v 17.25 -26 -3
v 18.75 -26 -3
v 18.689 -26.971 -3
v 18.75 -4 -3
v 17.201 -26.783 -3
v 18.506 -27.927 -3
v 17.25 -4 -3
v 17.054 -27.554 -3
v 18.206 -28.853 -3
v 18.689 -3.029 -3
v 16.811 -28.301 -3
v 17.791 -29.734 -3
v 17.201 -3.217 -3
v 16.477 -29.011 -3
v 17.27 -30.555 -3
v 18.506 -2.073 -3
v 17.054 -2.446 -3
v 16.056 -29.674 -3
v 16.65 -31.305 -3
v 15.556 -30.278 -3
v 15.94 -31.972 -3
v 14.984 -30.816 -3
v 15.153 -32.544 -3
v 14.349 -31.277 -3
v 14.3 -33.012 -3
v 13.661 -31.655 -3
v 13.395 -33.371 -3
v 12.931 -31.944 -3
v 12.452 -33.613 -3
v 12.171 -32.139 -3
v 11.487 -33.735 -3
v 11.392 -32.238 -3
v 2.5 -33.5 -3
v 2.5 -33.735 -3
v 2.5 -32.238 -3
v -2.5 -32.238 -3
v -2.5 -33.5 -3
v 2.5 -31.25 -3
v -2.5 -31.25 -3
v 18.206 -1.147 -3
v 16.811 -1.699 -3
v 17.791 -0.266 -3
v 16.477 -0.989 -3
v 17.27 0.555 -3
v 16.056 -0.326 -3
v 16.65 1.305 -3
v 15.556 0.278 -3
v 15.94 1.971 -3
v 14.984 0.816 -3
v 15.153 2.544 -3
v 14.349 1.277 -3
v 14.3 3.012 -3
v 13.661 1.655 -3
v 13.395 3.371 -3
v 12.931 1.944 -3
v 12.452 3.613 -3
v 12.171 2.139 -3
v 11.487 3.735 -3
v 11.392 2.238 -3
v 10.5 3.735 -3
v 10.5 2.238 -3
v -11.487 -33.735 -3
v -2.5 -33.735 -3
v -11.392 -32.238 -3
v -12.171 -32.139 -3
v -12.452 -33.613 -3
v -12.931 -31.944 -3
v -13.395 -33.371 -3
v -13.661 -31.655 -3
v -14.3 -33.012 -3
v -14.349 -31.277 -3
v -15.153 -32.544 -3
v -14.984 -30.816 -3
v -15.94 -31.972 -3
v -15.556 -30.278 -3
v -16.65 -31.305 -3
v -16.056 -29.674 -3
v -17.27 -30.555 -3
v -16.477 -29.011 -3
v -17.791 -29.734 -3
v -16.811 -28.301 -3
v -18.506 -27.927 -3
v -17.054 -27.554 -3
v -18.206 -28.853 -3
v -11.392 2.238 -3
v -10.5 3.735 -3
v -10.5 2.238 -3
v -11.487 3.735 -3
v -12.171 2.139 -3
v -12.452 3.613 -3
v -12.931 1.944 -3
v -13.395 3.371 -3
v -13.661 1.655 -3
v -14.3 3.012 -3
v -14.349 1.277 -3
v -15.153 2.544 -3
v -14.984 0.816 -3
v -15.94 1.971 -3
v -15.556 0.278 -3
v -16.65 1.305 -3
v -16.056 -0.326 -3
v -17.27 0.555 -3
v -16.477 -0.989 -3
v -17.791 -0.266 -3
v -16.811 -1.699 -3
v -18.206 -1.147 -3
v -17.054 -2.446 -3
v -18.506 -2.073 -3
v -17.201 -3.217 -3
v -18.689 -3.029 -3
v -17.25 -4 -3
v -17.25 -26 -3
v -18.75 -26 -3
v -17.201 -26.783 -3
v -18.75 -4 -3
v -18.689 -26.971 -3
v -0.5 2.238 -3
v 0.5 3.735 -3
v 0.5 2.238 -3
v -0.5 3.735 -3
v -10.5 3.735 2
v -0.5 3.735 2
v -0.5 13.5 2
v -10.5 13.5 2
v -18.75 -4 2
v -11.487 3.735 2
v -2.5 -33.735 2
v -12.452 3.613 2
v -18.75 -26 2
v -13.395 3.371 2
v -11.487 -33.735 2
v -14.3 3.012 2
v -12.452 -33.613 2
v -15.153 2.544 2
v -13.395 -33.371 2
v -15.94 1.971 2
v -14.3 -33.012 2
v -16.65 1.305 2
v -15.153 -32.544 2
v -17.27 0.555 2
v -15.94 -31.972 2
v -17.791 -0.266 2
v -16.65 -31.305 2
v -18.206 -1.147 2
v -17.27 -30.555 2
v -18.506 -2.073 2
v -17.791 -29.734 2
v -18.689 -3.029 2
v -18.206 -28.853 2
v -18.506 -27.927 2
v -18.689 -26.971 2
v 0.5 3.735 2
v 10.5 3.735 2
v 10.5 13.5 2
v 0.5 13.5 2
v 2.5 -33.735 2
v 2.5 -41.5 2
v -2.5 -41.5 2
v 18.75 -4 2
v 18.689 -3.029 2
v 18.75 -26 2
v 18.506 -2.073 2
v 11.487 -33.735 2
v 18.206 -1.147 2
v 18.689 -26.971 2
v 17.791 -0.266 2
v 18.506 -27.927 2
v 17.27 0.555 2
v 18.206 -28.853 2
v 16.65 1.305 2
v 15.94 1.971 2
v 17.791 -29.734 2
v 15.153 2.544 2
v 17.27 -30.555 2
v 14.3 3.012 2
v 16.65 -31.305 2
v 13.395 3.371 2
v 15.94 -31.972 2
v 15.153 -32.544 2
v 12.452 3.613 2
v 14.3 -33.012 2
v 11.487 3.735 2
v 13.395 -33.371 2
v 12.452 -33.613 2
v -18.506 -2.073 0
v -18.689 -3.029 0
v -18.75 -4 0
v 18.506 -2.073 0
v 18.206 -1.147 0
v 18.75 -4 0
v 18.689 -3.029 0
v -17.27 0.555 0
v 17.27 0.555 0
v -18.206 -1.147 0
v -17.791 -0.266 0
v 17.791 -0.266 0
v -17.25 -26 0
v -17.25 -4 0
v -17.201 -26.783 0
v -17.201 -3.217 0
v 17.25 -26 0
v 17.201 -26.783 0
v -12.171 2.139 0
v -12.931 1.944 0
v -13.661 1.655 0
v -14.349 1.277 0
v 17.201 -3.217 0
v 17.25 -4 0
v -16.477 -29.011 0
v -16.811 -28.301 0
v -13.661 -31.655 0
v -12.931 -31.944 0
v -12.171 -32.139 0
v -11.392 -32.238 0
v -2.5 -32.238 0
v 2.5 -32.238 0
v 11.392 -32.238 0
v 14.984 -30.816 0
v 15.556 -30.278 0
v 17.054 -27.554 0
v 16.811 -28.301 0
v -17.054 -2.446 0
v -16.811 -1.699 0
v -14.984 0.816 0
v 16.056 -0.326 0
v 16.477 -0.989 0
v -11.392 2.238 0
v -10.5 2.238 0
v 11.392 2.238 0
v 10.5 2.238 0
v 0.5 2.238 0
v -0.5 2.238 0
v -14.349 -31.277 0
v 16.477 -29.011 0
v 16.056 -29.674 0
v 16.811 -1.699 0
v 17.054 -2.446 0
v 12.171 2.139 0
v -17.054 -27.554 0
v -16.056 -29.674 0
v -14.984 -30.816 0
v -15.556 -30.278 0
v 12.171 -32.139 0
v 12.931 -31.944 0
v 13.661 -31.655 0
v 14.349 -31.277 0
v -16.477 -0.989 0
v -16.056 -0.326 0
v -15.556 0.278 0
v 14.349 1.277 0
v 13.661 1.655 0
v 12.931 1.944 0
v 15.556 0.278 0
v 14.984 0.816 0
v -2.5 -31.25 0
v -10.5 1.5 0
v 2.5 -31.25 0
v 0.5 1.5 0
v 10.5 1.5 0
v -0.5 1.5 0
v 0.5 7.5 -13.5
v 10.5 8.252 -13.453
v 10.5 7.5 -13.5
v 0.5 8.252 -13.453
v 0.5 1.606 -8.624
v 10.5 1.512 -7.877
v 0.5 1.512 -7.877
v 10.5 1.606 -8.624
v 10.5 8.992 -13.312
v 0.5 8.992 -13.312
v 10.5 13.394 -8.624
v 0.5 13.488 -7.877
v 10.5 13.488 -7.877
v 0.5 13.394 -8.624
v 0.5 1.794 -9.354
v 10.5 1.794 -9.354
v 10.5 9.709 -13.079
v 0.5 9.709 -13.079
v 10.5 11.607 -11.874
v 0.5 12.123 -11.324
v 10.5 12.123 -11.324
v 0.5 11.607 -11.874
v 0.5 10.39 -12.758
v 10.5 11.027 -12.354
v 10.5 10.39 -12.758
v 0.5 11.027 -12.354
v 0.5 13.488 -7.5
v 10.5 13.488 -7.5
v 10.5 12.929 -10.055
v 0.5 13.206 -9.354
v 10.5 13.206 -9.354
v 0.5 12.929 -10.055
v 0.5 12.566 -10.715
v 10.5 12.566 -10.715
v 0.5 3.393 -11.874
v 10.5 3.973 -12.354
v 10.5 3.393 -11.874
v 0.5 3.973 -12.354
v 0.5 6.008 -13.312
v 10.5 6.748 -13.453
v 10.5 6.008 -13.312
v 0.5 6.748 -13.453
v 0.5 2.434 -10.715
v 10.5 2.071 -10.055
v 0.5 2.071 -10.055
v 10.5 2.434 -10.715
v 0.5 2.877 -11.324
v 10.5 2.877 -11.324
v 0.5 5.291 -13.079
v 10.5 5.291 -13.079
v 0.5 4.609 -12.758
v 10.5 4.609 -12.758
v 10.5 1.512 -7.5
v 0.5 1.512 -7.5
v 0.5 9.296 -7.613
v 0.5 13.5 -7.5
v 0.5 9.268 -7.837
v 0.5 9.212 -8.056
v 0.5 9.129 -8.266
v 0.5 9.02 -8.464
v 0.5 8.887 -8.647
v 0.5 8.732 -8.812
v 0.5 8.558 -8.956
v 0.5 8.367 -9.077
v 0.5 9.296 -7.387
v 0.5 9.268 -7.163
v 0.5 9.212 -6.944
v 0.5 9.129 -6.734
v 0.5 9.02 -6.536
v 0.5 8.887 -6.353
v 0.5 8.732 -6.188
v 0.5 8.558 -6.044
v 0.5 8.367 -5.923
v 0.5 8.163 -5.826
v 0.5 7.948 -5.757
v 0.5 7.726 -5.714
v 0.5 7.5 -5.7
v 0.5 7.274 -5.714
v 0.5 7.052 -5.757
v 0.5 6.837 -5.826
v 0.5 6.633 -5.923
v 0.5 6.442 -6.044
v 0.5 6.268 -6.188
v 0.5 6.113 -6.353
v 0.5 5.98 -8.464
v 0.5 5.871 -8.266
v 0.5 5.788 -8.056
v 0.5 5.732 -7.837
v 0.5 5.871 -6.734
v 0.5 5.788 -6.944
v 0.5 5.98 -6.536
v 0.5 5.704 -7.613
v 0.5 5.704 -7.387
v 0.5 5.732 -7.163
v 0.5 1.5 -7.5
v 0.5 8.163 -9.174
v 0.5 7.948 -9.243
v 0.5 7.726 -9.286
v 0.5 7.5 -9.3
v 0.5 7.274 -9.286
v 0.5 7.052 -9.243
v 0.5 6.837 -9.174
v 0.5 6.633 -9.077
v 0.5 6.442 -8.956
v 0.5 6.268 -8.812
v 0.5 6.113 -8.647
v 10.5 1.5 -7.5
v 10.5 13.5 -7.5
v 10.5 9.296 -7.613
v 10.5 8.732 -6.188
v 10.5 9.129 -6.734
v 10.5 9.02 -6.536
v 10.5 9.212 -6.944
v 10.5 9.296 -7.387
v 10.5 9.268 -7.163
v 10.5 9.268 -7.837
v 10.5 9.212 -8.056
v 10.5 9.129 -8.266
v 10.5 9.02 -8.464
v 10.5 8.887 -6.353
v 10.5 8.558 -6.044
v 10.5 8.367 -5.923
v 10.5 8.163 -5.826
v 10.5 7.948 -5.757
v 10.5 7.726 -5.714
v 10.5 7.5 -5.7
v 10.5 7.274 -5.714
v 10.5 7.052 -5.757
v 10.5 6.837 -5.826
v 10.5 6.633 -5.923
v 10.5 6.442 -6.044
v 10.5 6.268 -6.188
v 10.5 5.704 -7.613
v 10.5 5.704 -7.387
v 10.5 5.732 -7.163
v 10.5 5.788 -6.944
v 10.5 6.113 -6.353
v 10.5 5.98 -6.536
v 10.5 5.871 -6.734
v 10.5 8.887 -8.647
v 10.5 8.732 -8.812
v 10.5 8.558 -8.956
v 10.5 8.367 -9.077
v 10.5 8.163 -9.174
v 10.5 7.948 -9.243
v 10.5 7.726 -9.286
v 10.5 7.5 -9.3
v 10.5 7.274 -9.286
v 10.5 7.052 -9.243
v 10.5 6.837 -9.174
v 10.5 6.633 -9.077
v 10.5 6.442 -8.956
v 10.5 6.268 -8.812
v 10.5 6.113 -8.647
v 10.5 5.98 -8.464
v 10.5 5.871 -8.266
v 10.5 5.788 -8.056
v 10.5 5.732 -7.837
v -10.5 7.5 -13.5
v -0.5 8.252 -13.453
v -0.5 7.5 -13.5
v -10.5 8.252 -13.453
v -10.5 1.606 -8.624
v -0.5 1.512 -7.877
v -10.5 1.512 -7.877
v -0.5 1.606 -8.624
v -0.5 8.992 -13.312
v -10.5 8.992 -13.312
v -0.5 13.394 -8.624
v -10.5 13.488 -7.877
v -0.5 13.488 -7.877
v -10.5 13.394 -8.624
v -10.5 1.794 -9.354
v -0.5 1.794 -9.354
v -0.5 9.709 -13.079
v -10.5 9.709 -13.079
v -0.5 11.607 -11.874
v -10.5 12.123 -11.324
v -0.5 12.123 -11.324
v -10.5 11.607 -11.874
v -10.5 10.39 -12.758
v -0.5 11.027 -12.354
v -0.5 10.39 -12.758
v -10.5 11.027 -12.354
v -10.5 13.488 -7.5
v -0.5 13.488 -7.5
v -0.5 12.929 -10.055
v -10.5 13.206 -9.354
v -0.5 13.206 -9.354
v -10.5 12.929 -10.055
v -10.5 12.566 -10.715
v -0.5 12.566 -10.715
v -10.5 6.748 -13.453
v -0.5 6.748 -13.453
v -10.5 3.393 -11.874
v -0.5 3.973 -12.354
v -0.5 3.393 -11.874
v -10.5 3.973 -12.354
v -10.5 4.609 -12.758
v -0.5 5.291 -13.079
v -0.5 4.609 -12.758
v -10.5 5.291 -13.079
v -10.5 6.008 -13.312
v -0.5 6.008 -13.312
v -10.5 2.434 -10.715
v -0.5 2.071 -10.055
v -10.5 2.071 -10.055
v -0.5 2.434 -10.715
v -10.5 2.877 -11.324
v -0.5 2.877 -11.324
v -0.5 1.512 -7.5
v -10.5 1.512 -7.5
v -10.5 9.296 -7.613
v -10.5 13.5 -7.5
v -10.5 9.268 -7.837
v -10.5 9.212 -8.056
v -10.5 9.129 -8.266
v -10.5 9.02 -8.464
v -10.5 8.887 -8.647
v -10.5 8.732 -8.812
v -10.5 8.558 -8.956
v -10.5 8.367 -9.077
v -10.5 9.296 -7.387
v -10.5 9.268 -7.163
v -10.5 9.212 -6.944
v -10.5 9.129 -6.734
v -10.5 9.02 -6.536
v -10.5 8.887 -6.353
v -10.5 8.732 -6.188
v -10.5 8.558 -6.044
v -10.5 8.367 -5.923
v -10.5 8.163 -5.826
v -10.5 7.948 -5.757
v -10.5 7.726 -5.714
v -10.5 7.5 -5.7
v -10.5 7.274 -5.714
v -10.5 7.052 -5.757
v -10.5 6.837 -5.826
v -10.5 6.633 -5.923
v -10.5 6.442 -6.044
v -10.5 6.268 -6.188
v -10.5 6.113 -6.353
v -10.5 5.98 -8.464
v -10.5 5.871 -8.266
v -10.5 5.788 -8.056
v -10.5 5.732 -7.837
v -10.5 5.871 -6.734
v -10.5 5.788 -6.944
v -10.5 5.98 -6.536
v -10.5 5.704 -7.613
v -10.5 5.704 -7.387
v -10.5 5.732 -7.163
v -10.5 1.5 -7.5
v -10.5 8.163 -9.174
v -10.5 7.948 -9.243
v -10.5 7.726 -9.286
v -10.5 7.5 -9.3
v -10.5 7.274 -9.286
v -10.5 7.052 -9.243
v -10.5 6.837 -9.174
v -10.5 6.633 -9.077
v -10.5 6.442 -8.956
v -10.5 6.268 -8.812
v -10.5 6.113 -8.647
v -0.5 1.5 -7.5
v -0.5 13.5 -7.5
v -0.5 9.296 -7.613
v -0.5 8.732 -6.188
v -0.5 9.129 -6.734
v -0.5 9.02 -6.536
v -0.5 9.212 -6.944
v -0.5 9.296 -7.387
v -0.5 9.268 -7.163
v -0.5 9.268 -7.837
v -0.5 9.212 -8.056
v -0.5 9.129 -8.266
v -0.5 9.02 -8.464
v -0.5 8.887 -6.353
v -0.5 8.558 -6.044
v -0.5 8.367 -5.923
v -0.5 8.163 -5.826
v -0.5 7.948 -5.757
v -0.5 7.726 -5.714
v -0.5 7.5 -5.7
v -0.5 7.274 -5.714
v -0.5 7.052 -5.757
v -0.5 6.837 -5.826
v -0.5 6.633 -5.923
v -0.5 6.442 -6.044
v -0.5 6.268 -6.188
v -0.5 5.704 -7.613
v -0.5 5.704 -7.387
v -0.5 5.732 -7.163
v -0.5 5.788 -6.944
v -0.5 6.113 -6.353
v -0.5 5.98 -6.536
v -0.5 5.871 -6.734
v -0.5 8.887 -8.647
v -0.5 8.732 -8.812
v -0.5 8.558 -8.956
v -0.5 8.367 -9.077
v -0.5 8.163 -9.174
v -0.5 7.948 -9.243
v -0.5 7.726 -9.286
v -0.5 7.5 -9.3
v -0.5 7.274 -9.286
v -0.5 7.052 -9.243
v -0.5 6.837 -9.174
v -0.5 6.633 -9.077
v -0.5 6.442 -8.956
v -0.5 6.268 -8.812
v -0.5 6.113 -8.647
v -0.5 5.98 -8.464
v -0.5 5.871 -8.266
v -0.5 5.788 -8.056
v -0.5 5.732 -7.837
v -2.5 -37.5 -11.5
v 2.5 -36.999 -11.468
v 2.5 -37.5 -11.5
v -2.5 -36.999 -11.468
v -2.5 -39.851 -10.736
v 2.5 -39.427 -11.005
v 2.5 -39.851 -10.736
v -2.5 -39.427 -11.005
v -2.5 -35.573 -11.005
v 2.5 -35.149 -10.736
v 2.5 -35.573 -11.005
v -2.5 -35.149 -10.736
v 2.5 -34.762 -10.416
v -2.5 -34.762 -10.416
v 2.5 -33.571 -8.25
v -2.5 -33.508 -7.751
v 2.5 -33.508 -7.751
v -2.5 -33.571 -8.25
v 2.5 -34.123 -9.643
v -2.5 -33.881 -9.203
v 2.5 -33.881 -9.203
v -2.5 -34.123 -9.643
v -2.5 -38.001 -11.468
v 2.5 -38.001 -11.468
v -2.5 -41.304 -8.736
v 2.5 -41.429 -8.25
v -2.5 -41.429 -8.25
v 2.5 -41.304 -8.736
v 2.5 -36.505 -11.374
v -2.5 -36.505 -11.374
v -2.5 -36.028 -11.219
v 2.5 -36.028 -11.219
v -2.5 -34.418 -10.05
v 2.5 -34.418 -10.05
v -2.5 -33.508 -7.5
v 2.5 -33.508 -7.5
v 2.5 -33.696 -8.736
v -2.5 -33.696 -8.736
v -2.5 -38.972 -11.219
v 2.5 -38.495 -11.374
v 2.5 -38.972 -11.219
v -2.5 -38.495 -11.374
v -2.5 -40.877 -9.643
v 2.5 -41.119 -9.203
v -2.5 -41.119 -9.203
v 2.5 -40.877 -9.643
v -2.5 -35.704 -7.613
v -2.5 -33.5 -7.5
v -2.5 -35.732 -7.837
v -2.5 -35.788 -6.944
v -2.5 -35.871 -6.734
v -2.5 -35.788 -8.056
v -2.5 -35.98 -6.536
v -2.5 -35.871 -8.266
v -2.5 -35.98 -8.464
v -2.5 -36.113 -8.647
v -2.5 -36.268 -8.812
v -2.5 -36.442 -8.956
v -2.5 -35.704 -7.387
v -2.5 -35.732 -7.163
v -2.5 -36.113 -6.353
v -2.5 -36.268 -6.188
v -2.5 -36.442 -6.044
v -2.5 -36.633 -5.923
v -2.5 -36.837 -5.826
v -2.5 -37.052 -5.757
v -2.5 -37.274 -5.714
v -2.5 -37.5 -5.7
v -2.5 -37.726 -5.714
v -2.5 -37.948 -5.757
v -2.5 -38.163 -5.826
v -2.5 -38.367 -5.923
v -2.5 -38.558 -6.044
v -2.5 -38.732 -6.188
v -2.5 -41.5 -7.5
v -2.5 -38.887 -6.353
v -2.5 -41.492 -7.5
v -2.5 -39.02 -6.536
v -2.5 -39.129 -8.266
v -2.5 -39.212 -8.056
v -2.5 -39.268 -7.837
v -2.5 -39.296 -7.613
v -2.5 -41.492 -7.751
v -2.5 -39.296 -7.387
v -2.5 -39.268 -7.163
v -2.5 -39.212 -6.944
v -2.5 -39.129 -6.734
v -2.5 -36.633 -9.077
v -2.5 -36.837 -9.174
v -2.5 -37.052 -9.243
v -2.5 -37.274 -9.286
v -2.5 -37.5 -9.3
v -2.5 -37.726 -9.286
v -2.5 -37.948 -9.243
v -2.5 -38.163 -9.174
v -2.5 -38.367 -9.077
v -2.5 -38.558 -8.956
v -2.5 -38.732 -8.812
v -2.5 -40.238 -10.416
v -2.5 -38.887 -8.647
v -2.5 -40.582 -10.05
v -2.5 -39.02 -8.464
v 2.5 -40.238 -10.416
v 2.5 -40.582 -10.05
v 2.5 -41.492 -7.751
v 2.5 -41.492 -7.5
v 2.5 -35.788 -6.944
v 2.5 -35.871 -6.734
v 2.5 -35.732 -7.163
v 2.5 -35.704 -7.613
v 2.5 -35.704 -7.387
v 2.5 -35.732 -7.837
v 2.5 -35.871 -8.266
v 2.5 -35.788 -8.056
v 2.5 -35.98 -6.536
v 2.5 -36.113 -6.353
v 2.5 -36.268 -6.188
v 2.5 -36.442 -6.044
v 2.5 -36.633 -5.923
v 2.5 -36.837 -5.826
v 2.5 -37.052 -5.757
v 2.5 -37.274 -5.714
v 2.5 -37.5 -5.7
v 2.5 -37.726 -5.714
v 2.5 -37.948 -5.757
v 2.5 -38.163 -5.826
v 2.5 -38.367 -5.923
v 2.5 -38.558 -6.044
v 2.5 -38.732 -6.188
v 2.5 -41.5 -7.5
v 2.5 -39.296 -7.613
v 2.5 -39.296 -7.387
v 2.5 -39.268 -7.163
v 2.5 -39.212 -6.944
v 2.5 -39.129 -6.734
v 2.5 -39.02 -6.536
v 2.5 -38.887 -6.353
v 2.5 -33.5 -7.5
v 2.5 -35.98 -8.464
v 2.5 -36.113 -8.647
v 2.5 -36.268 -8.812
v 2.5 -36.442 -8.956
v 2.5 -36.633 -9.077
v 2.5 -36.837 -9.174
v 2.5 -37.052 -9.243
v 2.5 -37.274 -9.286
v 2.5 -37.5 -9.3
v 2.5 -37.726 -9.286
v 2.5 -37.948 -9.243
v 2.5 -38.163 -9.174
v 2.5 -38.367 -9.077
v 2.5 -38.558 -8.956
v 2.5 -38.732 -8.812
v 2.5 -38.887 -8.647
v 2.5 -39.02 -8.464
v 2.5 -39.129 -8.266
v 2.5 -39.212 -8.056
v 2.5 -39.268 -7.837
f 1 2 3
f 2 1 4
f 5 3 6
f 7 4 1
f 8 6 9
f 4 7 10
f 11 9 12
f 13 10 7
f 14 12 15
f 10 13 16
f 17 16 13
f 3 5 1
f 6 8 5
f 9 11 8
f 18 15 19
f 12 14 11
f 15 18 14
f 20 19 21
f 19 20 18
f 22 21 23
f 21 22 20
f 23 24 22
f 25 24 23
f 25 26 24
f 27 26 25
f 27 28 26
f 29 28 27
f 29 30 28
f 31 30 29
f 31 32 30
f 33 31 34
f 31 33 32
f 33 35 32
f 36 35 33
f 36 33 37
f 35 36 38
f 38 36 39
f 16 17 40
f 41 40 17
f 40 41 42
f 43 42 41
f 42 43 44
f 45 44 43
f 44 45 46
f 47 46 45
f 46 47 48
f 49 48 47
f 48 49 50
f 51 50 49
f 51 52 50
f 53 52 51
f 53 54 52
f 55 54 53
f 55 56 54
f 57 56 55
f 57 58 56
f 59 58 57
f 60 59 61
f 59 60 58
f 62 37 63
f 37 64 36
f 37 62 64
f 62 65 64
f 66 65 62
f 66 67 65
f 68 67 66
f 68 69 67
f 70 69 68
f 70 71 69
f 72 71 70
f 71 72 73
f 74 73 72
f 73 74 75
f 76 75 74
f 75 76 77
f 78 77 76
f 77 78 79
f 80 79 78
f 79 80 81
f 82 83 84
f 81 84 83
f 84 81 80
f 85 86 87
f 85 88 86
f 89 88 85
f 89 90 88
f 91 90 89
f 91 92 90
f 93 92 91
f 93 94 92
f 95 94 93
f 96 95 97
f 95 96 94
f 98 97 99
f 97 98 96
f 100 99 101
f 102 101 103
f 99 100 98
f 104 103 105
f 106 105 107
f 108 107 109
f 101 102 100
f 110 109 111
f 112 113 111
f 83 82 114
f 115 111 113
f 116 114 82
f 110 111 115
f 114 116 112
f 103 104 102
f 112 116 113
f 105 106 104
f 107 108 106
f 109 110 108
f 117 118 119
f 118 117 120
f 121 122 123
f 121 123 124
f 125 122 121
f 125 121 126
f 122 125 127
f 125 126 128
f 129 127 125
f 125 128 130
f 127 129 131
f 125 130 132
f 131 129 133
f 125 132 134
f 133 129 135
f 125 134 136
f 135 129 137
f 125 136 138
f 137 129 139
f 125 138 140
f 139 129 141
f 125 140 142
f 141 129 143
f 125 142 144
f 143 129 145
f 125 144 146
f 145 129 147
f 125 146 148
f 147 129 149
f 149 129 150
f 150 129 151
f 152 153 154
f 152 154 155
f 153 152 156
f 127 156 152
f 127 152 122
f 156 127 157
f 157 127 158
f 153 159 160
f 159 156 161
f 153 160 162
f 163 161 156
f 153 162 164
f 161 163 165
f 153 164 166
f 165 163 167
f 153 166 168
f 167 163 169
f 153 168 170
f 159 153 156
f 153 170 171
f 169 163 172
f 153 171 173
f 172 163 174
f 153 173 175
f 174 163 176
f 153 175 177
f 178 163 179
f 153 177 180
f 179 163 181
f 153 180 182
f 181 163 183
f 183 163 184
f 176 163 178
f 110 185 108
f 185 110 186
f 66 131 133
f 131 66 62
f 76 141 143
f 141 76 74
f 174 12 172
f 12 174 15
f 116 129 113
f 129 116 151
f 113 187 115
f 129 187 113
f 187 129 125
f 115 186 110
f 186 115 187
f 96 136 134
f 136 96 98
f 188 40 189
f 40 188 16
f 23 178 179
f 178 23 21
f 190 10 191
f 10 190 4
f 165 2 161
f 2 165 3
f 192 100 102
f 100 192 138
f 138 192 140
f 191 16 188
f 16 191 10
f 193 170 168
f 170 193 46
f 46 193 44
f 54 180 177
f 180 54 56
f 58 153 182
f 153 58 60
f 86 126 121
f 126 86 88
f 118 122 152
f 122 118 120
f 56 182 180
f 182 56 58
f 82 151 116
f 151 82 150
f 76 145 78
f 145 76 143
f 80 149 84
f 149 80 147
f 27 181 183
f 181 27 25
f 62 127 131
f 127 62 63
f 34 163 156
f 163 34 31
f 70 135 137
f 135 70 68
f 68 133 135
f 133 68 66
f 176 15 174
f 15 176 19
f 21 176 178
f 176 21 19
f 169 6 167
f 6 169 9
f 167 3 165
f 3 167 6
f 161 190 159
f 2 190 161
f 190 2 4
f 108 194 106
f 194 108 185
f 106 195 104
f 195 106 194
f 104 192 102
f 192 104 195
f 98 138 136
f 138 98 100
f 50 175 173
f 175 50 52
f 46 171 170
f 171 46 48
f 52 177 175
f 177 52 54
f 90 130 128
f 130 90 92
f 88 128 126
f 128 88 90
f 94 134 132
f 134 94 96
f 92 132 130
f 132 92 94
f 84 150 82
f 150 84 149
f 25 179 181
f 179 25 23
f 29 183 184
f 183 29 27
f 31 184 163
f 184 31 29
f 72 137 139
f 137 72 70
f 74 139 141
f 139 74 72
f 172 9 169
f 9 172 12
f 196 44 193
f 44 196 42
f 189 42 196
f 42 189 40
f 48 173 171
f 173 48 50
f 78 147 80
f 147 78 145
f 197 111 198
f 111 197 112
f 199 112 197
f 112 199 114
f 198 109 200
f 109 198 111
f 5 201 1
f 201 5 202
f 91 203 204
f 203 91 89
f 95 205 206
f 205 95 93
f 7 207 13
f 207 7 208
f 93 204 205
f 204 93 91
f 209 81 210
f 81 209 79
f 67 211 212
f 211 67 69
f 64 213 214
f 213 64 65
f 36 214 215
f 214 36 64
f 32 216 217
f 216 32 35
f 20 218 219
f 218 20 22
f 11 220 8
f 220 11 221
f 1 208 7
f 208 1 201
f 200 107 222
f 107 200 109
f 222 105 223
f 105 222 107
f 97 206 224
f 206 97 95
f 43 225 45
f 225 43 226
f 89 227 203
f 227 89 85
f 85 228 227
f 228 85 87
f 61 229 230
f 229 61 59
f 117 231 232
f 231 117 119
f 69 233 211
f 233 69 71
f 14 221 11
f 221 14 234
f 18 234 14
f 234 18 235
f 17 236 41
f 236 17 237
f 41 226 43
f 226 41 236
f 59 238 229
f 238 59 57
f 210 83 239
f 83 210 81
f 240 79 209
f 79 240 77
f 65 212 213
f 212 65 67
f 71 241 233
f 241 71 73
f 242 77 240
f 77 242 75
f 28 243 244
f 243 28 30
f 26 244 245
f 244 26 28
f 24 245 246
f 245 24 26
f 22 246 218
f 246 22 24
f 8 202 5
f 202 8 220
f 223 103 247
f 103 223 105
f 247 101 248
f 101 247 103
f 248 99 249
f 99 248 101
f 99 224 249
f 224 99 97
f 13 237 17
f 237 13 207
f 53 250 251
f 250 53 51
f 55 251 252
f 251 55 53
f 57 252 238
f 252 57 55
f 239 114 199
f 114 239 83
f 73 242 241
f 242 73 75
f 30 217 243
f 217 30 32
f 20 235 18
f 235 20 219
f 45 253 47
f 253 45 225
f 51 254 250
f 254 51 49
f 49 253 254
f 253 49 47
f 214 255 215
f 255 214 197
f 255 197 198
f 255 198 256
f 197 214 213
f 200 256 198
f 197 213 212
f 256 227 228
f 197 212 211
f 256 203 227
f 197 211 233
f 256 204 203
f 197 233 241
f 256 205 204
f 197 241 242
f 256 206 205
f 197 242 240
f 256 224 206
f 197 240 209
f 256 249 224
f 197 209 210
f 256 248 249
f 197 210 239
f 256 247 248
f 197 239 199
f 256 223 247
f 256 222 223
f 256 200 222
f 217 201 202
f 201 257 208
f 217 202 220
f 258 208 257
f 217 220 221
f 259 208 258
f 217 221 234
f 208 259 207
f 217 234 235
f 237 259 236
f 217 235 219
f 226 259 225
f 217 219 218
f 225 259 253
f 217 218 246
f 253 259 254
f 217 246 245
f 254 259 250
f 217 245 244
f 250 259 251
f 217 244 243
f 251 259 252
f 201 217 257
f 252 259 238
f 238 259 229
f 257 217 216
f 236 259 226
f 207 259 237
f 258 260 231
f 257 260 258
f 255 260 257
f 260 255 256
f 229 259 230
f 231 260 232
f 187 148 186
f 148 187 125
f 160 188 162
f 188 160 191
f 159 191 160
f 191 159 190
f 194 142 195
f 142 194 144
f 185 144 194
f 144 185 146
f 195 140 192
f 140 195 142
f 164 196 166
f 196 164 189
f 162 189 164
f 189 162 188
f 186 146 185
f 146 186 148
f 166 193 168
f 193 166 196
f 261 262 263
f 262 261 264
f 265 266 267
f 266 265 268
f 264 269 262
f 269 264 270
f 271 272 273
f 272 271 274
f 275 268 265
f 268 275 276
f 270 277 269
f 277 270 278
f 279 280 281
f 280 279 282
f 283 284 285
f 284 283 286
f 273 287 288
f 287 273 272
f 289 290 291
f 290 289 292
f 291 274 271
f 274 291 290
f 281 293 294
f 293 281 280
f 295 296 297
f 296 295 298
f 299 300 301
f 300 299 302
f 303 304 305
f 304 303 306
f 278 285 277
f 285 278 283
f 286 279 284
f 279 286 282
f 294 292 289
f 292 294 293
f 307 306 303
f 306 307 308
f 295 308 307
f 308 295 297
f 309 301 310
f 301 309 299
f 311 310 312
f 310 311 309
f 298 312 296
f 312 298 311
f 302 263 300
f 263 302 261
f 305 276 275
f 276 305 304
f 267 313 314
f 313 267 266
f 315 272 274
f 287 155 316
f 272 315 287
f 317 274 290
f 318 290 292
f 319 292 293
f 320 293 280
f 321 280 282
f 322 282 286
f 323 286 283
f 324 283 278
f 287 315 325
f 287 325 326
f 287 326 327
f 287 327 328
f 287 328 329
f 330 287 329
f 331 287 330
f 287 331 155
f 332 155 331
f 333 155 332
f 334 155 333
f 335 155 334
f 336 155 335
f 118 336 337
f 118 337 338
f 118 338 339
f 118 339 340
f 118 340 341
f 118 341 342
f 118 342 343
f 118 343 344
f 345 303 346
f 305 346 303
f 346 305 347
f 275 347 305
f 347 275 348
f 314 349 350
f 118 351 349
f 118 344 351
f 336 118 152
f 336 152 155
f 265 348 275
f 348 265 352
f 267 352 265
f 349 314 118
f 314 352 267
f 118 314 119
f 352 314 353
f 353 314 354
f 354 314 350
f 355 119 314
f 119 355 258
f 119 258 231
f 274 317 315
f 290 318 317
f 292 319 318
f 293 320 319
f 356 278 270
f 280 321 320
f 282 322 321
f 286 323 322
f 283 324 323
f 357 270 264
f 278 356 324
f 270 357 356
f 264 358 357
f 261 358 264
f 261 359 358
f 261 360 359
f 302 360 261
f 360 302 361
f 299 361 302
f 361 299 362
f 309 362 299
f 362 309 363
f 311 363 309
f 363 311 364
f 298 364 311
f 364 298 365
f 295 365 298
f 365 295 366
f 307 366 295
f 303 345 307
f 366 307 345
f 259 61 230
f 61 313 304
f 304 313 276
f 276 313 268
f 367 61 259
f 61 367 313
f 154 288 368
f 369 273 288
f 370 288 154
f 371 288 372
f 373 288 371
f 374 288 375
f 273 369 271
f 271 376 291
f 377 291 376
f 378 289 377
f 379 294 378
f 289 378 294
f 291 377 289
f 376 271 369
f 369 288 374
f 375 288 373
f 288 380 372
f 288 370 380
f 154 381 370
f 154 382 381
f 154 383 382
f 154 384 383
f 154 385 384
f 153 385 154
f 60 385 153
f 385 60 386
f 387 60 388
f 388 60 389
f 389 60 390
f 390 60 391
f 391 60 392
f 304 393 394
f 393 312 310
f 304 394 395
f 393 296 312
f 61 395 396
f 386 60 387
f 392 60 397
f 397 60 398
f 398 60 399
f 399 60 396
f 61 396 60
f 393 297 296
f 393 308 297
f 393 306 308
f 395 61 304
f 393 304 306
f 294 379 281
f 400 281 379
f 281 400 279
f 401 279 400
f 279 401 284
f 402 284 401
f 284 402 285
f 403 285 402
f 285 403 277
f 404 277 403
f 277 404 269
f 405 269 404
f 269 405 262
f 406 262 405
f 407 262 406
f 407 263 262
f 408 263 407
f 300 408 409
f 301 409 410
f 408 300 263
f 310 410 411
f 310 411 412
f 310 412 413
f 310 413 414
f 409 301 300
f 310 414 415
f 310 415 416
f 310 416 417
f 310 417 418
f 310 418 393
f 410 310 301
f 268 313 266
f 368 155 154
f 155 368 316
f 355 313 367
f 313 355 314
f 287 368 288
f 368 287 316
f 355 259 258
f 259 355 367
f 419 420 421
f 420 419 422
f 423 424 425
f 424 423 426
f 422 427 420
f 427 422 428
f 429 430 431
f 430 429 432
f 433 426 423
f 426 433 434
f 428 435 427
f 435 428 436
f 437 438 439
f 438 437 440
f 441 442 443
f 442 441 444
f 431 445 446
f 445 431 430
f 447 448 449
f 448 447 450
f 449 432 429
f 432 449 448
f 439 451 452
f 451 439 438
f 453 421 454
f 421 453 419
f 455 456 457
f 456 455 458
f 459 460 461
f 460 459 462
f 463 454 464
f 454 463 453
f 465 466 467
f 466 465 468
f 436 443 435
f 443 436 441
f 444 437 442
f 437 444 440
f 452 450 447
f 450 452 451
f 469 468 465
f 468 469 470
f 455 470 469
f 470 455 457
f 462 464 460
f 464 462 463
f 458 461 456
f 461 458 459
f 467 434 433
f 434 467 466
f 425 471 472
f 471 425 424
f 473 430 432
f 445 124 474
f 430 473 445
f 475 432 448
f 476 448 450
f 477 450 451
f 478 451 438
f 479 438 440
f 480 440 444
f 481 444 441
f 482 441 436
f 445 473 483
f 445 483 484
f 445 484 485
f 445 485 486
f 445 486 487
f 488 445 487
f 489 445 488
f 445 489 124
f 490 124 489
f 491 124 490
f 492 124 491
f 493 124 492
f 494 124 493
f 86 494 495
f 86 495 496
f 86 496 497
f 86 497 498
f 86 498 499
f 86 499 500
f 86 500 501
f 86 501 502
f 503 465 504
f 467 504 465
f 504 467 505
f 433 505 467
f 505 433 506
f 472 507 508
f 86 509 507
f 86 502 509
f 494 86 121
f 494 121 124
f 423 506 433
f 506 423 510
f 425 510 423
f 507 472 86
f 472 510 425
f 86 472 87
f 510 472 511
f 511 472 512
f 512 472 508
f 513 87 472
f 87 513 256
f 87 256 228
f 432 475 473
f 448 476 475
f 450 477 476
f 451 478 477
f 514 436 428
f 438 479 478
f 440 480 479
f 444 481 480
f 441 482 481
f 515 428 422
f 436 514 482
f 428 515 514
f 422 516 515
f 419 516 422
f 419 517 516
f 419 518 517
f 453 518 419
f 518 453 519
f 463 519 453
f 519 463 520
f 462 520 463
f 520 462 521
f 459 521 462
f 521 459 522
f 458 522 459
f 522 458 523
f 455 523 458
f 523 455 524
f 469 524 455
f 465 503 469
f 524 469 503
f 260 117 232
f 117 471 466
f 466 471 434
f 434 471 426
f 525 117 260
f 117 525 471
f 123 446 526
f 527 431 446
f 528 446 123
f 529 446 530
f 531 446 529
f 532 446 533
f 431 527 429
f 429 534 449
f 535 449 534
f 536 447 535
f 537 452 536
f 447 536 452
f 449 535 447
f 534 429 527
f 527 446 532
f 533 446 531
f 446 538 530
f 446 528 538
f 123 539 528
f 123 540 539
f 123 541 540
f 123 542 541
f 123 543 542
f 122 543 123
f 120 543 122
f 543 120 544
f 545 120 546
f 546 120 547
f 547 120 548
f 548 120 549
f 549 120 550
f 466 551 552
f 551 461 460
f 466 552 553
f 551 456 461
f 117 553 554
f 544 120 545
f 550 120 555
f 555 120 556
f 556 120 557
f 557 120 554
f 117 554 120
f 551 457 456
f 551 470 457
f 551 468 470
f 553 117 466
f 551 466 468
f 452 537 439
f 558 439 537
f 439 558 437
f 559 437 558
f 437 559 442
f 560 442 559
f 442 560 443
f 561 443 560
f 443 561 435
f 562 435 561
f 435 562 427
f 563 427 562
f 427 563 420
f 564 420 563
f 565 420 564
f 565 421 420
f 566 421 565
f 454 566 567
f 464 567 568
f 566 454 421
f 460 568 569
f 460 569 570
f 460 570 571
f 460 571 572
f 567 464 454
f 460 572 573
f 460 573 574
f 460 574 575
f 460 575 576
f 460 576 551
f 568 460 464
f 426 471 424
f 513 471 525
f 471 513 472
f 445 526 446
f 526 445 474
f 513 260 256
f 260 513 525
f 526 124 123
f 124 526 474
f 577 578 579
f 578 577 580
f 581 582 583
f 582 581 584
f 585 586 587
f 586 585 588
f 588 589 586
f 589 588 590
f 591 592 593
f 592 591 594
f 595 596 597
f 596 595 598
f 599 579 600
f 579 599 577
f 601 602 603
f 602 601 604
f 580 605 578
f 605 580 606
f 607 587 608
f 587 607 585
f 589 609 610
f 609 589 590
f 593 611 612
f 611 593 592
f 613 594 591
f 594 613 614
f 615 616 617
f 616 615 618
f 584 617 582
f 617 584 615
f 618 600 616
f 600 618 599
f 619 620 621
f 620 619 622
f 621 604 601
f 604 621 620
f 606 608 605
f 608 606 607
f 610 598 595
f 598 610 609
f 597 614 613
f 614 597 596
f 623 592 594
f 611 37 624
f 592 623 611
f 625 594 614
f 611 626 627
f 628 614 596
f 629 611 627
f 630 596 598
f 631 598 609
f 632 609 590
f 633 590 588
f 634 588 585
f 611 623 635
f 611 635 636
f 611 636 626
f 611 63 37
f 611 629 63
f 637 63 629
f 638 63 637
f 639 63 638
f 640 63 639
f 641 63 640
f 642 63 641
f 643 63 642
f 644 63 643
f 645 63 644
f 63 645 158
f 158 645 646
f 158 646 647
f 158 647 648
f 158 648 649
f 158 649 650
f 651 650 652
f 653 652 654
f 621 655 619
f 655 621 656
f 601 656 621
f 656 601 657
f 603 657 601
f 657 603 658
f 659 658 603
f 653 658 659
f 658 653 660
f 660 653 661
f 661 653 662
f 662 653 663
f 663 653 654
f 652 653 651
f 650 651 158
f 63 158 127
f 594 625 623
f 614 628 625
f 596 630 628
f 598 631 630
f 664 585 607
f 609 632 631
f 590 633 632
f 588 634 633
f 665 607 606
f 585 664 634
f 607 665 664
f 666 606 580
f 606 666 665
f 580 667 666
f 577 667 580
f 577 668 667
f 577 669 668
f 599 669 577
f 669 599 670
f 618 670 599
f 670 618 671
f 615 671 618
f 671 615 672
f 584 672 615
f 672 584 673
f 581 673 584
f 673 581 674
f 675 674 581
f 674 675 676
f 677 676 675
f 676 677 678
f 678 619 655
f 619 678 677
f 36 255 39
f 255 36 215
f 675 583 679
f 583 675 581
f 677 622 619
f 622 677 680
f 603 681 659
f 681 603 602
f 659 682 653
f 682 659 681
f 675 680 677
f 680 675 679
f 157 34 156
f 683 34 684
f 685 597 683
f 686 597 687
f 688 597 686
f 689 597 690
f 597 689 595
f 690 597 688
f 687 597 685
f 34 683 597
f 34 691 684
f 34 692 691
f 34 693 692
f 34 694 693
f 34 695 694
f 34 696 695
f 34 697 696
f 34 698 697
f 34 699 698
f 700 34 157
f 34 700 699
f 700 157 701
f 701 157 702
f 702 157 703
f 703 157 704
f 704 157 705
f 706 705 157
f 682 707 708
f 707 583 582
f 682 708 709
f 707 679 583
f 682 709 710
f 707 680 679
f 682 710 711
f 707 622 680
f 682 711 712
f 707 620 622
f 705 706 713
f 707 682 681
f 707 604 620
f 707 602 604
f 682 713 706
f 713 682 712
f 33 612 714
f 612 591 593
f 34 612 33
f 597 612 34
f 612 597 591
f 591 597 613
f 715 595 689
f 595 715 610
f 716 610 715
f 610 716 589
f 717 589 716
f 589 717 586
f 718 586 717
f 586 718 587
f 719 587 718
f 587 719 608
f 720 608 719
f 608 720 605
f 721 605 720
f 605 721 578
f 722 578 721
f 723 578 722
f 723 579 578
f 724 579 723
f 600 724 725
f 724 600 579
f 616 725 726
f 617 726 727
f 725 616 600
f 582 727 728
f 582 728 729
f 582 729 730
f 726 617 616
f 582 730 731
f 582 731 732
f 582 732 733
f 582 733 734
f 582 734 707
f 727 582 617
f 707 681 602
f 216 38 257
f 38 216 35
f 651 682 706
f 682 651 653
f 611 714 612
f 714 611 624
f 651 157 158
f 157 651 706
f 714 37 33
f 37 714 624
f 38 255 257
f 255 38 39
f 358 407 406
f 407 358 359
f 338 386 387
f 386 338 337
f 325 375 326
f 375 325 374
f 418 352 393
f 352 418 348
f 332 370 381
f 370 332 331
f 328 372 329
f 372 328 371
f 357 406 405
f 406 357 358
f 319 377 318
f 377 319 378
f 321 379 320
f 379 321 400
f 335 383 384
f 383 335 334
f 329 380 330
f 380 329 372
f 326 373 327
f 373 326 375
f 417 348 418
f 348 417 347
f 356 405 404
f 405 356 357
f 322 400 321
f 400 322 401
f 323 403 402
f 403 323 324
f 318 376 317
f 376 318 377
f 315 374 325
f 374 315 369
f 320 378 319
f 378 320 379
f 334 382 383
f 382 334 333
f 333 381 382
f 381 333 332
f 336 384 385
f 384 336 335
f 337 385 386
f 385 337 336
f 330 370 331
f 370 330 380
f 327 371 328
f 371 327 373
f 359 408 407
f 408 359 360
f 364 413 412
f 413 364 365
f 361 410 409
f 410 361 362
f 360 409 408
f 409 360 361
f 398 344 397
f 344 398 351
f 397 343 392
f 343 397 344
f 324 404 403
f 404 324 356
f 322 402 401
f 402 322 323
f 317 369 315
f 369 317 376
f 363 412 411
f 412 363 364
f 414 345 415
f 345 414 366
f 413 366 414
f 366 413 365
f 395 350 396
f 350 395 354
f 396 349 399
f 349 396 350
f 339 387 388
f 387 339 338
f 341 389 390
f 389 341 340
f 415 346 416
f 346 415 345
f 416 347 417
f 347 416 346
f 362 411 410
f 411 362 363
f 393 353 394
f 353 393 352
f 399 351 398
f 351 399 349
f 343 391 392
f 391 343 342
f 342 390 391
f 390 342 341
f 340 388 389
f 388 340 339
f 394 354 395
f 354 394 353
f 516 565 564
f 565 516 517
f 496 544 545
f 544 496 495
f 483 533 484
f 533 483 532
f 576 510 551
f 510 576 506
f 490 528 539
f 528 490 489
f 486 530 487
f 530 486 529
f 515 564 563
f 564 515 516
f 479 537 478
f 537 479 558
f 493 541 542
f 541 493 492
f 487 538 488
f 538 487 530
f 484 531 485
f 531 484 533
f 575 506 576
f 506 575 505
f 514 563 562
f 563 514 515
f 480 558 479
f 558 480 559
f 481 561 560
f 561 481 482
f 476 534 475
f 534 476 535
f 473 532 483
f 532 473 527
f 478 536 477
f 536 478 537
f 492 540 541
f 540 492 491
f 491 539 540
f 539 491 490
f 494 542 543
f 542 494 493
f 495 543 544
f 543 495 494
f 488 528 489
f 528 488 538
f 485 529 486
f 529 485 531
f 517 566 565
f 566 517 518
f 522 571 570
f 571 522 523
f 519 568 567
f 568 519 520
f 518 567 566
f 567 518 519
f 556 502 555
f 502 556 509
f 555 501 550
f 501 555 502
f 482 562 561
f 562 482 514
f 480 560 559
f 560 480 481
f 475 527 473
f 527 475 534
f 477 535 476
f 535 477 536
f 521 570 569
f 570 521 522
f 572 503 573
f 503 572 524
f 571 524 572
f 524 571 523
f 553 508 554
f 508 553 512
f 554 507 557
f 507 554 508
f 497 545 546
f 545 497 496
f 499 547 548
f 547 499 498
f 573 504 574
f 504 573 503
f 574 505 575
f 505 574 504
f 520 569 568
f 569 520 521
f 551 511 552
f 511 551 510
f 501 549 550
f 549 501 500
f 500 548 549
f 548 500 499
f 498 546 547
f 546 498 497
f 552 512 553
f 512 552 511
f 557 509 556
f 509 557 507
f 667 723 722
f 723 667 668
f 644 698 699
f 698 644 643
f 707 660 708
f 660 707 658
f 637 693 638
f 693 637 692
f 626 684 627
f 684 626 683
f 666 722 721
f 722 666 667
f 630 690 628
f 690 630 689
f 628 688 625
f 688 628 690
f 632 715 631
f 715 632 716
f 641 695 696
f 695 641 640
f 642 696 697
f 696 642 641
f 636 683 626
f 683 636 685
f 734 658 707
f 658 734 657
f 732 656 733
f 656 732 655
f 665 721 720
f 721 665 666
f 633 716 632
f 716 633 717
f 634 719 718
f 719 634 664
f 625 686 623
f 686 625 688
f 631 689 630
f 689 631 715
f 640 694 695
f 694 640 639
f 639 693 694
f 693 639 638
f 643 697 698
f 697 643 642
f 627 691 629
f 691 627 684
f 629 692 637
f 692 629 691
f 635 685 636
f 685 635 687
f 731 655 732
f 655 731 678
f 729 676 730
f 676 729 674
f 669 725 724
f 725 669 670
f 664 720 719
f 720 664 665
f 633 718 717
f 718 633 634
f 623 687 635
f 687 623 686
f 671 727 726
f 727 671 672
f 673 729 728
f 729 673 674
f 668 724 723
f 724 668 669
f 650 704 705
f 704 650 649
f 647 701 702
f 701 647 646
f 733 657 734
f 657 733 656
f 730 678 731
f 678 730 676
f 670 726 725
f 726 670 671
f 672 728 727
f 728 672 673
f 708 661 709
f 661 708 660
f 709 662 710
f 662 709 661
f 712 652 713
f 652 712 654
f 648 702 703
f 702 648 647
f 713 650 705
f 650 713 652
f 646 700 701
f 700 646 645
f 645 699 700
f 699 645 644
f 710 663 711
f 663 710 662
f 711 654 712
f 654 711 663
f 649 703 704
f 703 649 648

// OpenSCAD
$fn = 50;


difference() {
	union() {
		translate(v = [0, -15.0000000000, -3]) {
			rotate(a = [0, 0, 0]) {
				difference() {
					union() {
						hull() {
							translate(v = [-11.0000000000, 11.0000000000, 0]) {
								cylinder(h = 5, r = 7.7500000000);
							}
							translate(v = [11.0000000000, 11.0000000000, 0]) {
								cylinder(h = 5, r = 7.7500000000);
							}
							translate(v = [-11.0000000000, -11.0000000000, 0]) {
								cylinder(h = 5, r = 7.7500000000);
							}
							translate(v = [11.0000000000, -11.0000000000, 0]) {
								cylinder(h = 5, r = 7.7500000000);
							}
						}
					}
					union() {
						hull() {
							translate(v = [-11.0000000000, 11.0000000000, 0]) {
								cylinder(h = 5, r = 6.2500000000);
							}
							translate(v = [11.0000000000, 11.0000000000, 0]) {
								cylinder(h = 5, r = 6.2500000000);
							}
							translate(v = [-11.0000000000, -11.0000000000, 0]) {
								cylinder(h = 5, r = 6.2500000000);
							}
							translate(v = [11.0000000000, -11.0000000000, 0]) {
								cylinder(h = 5, r = 6.2500000000);
							}
						}
					}
				}
			}
		}
		translate(v = [0, -15.0000000000, 0]) {
			hull() {
				translate(v = [-11.0000000000, 11.0000000000, 0]) {
					cylinder(h = 2, r = 7.7500000000);
				}
				translate(v = [11.0000000000, 11.0000000000, 0]) {
					cylinder(h = 2, r = 7.7500000000);
				}
				translate(v = [-11.0000000000, -11.0000000000, 0]) {
					cylinder(h = 2, r = 7.7500000000);
				}
				translate(v = [11.0000000000, -11.0000000000, 0]) {
					cylinder(h = 2, r = 7.7500000000);
				}
			}
		}
		translate(v = [0.5000000000, 7.5000000000, -7.5000000000]) {
			rotate(a = [0, 90, 0]) {
				cylinder(h = 10, r = 6.0000000000);
			}
		}
		translate(v = [0.5000000000, 1.5000000000, -7.5000000000]) {
			cube(size = [10, 12, 7.5000000000]);
		}
		translate(v = [0.5000000000, -15.0000000000, 0.0000000000]) {
			cube(size = [10, 28.5000000000, 2]);
		}
		translate(v = [-10.5000000000, 7.5000000000, -7.5000000000]) {
			rotate(a = [0, 90, 0]) {
				cylinder(h = 10, r = 6.0000000000);
			}
		}
		translate(v = [-10.5000000000, 1.5000000000, -7.5000000000]) {
			cube(size = [10, 12, 7.5000000000]);
		}
		translate(v = [-10.5000000000, -15.0000000000, 0.0000000000]) {
			cube(size = [10, 28.5000000000, 2]);
		}
		translate(v = [-2.5000000000, -37.5000000000, -7.5000000000]) {
			rotate(a = [0, 90, 0]) {
				cylinder(h = 5, r = 4.0000000000);
			}
		}
		translate(v = [-2.5000000000, -41.5000000000, -7.5000000000]) {
			cube(size = [5, 8, 7.5000000000]);
		}
		translate(v = [-2.5000000000, -41.5000000000, -3.0000000000]) {
			cube(size = [5, 10.2500000000, 5]);
		}
	}
	union() {
		translate(v = [0.5000000000, 7.5000000000, -7.5000000000]) {
			rotate(a = [0, 90, 0]) {
				cylinder(h = 10, r = 1.8000000000);
			}
		}
		translate(v = [-10.5000000000, 7.5000000000, -7.5000000000]) {
			rotate(a = [0, 90, 0]) {
				cylinder(h = 10, r = 1.8000000000);
			}
		}
		translate(v = [-5.0000000000, -37.5000000000, -7.5000000000]) {
			rotate(a = [0, 90, 0]) {
				cylinder(h = 10, r = 1.8000000000);
			}
		}
	}
}
